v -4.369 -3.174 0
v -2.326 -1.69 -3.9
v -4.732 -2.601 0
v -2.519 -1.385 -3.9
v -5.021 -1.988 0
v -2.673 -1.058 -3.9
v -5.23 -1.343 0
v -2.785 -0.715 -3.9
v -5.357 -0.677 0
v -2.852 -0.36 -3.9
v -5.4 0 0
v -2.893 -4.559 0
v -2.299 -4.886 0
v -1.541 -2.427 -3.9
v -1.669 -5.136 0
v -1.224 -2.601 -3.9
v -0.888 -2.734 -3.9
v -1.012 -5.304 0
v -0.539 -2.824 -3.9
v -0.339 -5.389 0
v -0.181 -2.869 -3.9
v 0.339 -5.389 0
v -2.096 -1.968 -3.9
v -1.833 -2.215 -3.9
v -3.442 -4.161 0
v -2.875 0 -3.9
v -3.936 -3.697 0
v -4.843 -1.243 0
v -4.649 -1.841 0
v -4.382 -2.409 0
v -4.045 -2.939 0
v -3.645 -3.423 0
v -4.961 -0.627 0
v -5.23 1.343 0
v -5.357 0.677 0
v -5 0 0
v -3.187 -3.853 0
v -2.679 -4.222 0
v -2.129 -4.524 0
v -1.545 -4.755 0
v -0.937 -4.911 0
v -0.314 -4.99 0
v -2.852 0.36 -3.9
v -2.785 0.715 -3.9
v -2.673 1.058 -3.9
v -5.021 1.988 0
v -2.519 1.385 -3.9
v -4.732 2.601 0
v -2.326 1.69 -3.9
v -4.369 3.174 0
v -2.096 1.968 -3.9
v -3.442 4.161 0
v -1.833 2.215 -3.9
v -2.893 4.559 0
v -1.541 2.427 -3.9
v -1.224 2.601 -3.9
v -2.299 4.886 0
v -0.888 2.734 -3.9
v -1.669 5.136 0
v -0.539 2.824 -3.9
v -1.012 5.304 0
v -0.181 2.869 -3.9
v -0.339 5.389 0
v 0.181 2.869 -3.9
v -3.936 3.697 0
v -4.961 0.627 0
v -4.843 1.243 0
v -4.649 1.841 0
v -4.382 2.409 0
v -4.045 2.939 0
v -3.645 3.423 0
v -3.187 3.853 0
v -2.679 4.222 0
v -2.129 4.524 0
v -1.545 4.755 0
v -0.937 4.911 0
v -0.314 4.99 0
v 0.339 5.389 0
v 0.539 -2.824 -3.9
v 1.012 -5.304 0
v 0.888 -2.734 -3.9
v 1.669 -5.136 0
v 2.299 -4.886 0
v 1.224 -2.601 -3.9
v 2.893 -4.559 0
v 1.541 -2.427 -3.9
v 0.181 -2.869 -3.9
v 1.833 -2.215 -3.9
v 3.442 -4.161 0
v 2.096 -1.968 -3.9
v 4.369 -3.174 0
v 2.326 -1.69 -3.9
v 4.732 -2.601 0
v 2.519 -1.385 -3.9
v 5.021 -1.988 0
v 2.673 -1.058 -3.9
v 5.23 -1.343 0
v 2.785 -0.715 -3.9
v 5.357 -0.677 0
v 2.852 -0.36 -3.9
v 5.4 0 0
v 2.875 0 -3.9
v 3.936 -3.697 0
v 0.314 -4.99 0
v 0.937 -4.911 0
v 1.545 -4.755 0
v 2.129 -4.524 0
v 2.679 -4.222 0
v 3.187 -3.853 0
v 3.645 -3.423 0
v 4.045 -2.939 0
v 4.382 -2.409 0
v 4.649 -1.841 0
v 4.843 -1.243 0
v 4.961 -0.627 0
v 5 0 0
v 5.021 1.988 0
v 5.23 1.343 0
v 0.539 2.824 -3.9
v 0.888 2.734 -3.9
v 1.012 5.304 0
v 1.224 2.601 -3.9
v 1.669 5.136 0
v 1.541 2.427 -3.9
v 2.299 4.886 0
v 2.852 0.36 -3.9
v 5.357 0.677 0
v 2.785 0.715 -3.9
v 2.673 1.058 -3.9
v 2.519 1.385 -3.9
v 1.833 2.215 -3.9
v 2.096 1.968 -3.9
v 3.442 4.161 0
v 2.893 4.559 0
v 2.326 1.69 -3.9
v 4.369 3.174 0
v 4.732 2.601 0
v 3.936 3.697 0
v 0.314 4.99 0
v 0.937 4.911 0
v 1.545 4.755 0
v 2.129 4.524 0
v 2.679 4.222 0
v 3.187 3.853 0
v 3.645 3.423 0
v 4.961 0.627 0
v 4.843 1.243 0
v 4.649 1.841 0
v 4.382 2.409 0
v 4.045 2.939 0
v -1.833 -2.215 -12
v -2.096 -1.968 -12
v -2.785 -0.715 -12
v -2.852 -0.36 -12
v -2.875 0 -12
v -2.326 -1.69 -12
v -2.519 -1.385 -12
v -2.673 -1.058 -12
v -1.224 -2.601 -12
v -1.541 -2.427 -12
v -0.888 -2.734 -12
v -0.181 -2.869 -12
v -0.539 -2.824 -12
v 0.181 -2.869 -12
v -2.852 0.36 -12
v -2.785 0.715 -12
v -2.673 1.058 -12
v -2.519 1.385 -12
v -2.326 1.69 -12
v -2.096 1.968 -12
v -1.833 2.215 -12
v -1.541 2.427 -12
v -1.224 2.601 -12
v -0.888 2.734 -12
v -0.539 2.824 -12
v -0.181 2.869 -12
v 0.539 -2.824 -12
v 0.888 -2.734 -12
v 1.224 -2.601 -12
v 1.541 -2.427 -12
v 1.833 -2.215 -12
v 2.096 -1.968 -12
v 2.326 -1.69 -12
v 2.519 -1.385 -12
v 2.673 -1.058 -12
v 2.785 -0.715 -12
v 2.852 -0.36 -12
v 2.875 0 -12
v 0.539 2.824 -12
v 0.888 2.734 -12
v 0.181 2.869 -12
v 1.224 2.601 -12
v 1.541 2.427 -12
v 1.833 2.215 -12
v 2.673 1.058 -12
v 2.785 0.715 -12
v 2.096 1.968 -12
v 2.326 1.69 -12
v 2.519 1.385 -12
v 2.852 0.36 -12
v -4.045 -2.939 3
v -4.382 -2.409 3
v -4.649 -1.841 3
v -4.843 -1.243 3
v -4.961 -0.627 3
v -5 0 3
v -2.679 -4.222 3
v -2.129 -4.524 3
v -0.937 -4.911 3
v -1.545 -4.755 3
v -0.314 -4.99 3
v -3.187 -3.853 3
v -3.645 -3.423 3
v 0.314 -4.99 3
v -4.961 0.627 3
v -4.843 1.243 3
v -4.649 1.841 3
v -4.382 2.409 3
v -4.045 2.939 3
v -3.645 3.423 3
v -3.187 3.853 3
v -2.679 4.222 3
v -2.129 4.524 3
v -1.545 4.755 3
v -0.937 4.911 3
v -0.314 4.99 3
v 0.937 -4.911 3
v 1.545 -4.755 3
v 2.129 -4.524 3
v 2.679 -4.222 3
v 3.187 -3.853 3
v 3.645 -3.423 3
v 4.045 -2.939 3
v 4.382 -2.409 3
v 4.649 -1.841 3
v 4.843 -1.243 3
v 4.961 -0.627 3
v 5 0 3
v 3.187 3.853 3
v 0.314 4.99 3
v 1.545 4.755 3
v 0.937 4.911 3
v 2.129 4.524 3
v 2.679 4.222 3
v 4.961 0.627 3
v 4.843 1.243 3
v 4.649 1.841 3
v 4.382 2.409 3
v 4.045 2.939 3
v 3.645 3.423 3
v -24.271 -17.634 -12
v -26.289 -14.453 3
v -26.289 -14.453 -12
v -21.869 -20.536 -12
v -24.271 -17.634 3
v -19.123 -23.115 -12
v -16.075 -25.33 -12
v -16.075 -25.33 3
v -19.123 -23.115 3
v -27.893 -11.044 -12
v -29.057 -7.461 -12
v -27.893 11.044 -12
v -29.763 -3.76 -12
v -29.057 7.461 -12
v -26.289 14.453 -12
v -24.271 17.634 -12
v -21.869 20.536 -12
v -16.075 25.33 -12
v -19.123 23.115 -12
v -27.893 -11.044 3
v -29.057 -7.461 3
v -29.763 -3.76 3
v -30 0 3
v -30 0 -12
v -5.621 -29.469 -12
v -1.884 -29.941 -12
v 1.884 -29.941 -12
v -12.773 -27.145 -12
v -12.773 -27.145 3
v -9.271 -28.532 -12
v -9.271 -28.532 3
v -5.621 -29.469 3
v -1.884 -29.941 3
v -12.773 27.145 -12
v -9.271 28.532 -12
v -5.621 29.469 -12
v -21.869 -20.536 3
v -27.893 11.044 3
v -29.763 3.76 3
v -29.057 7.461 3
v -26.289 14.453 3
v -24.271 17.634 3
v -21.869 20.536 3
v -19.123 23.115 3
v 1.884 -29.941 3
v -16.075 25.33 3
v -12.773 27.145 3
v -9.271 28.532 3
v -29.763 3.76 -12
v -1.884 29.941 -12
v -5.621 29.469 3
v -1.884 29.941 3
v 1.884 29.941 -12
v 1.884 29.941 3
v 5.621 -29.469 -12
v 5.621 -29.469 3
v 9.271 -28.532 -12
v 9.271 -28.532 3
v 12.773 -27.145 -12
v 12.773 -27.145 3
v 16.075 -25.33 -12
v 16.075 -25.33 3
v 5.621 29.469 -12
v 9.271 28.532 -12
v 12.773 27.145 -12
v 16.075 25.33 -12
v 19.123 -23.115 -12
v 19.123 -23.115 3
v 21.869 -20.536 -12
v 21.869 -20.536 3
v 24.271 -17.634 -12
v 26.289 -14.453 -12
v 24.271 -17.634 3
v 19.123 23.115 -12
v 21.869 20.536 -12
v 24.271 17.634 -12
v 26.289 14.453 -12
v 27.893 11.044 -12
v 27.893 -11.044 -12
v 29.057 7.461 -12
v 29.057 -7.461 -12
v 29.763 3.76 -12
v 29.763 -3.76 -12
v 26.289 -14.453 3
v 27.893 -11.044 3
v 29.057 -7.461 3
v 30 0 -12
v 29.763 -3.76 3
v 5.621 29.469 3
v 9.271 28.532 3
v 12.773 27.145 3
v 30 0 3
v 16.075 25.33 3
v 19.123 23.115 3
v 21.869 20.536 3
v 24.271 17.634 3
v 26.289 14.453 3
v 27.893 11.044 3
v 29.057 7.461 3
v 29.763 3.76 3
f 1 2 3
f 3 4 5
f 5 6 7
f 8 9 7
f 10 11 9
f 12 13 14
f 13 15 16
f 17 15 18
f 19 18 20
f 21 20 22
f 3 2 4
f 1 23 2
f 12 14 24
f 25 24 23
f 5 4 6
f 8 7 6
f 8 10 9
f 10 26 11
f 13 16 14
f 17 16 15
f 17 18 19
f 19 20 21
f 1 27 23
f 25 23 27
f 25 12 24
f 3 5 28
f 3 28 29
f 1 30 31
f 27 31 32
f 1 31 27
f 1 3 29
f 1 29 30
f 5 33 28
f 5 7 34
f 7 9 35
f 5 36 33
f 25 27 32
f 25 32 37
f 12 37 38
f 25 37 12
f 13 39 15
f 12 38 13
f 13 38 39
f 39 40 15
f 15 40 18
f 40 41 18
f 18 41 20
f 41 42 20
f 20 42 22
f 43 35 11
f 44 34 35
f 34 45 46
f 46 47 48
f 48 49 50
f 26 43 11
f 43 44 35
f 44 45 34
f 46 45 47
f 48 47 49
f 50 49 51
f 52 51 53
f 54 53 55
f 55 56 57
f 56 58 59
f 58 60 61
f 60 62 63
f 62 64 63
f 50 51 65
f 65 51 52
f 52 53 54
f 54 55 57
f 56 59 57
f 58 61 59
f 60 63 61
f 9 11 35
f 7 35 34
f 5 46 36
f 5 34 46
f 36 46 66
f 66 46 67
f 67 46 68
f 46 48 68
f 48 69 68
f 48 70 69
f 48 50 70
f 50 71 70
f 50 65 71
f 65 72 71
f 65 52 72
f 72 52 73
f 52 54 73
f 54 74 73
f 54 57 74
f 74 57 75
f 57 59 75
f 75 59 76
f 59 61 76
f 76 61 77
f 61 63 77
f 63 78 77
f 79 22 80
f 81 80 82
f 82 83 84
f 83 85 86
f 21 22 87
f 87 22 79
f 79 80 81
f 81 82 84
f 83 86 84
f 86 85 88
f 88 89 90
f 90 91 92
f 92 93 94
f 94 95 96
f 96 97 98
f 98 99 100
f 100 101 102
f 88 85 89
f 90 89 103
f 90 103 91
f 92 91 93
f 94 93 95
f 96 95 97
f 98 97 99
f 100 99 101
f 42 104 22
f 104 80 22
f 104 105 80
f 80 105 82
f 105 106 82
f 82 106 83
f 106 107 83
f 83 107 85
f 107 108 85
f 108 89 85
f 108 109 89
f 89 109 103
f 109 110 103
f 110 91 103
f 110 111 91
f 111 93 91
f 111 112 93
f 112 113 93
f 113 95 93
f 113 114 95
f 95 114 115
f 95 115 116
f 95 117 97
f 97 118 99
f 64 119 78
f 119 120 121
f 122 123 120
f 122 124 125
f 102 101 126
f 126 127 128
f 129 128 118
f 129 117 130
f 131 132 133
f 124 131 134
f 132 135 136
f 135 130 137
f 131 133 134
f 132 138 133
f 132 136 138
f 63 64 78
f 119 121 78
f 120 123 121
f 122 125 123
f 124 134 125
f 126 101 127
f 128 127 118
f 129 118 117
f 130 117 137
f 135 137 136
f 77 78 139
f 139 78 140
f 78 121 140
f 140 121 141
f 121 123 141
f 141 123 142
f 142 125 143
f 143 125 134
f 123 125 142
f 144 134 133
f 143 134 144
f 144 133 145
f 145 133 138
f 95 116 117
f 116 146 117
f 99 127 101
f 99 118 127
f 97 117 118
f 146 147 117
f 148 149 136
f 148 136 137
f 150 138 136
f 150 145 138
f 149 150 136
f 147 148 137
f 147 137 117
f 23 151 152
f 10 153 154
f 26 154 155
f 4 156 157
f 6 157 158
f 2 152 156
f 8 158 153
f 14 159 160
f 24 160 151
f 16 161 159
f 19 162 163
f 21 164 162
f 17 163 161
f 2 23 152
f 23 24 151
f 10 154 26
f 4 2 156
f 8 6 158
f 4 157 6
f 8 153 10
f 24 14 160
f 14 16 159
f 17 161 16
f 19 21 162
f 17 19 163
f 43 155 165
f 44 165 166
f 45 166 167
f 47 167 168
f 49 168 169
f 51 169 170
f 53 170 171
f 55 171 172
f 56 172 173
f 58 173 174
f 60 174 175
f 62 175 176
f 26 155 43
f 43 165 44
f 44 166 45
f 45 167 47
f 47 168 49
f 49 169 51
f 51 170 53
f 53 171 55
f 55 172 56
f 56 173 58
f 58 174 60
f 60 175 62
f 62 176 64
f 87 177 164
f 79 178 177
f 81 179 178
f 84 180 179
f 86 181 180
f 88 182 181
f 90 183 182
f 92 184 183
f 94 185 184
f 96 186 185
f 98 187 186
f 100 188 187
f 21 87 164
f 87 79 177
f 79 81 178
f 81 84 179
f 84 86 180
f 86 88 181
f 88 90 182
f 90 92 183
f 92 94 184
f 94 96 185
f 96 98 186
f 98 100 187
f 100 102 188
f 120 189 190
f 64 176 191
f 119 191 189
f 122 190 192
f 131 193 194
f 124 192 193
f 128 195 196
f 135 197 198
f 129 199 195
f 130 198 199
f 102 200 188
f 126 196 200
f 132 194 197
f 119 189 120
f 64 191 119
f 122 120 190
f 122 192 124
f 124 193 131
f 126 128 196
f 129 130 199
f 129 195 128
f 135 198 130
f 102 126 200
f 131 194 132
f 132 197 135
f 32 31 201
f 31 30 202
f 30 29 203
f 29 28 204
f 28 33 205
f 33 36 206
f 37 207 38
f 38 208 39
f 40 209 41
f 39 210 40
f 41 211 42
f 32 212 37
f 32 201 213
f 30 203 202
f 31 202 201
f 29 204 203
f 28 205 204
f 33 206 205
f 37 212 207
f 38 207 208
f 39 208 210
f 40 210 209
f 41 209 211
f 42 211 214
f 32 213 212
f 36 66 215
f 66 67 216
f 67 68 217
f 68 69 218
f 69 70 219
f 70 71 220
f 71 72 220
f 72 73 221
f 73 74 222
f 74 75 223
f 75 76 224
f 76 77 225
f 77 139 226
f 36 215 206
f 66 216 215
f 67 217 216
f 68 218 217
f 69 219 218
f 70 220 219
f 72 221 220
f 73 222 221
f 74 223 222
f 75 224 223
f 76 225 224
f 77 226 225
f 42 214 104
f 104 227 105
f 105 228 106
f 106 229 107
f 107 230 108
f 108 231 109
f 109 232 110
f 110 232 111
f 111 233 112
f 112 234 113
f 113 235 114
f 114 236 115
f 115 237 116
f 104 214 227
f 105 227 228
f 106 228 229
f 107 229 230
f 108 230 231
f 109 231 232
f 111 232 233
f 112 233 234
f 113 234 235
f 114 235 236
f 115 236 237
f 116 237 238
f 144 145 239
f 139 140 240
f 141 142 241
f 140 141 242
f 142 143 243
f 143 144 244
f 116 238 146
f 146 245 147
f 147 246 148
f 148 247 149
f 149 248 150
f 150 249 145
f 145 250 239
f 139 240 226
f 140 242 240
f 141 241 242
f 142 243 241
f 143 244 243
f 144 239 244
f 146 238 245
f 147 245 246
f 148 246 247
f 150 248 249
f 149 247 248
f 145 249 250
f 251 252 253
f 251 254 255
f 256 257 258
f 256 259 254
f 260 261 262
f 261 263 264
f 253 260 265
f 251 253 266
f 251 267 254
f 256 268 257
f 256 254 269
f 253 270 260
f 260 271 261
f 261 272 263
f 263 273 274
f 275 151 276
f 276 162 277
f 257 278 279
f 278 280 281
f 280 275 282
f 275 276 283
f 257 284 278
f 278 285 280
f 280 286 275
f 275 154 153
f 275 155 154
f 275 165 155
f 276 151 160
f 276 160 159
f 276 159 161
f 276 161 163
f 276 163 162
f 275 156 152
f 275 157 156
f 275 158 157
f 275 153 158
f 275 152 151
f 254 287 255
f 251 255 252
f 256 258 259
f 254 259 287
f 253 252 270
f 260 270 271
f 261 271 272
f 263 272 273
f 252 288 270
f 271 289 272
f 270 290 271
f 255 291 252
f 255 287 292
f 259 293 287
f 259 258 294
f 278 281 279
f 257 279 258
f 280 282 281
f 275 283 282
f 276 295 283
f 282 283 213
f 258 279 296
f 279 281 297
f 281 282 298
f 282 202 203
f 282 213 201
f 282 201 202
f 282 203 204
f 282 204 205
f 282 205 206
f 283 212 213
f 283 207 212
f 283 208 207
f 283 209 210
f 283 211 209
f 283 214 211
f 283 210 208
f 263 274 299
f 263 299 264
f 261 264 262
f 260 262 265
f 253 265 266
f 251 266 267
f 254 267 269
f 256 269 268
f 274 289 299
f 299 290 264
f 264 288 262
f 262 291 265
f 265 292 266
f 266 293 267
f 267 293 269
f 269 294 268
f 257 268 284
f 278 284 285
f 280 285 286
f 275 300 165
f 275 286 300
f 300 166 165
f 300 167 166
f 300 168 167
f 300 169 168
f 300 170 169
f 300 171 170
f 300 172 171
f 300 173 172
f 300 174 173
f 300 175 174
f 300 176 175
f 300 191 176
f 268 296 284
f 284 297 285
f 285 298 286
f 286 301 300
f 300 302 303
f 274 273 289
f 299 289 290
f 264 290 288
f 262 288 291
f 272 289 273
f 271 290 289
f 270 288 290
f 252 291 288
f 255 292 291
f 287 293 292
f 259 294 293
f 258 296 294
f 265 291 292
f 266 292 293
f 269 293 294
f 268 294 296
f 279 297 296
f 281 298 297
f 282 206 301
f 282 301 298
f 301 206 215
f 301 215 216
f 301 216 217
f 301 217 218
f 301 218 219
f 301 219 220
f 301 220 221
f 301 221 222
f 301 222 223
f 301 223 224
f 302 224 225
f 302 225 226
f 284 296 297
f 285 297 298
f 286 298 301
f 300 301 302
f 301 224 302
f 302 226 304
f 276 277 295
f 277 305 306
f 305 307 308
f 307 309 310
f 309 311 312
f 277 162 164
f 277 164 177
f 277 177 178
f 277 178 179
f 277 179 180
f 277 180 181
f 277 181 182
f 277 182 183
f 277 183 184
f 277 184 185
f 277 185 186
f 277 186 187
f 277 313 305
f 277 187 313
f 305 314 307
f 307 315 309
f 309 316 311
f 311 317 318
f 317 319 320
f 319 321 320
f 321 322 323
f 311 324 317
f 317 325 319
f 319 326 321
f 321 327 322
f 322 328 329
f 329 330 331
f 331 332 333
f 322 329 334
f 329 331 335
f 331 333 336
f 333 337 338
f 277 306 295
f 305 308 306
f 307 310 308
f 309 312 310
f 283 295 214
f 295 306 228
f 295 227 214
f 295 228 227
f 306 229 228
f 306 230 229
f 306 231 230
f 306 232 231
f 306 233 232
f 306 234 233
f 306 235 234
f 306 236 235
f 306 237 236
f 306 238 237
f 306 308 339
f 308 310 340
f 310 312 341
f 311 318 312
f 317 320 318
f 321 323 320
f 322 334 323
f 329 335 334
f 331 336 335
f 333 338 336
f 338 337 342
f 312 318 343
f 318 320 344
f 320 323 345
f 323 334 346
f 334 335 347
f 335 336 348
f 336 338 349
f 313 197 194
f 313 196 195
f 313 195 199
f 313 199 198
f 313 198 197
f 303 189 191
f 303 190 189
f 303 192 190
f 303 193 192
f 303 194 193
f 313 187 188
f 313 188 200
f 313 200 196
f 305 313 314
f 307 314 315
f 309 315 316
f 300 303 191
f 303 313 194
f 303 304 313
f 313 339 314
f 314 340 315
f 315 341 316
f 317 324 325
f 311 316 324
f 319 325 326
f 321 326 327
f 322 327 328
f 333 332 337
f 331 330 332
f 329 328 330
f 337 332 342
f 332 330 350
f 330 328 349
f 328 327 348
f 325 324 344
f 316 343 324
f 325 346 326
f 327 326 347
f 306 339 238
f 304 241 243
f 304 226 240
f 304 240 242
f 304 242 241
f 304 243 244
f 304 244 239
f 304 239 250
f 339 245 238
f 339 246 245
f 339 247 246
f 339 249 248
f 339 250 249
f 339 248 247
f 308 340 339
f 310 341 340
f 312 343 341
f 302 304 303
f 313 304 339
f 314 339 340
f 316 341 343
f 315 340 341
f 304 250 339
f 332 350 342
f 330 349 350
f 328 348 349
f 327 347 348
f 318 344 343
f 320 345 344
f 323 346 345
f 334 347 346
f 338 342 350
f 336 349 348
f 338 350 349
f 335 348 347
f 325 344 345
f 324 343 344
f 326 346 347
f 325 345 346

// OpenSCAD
$fn = 50;


difference() {
	union() {
		translate(v = [0, 0, -12.0000000000]) {
			cylinder(h = 15, r = 30.0000000000);
		}
	}
	union() {
		translate(v = [0, 0, 0]) {
			rotate(a = [0, 0, 0]) {
				difference() {
					union() {
						translate(v = [0, 0, -15.0000000000]) {
							cylinder(h = 15, r = 2.6000000000);
						}
						translate(v = [0, 0, -3.9000000000]) {
							cylinder(h = 3.9000000000, r1 = 2.8750000000, r2 = 5.4000000000);
						}
						translate(v = [0, 0, -15.0000000000]) {
							cylinder(h = 15, r = 2.8750000000);
						}
						translate(v = [0, 0, -15.0000000000]) {
							cylinder(h = 15, r = 2.6000000000);
						}
					}
					union();
				}
			}
		}
		#cylinder(h = 3, r = 5.0000000000);
	}
}
